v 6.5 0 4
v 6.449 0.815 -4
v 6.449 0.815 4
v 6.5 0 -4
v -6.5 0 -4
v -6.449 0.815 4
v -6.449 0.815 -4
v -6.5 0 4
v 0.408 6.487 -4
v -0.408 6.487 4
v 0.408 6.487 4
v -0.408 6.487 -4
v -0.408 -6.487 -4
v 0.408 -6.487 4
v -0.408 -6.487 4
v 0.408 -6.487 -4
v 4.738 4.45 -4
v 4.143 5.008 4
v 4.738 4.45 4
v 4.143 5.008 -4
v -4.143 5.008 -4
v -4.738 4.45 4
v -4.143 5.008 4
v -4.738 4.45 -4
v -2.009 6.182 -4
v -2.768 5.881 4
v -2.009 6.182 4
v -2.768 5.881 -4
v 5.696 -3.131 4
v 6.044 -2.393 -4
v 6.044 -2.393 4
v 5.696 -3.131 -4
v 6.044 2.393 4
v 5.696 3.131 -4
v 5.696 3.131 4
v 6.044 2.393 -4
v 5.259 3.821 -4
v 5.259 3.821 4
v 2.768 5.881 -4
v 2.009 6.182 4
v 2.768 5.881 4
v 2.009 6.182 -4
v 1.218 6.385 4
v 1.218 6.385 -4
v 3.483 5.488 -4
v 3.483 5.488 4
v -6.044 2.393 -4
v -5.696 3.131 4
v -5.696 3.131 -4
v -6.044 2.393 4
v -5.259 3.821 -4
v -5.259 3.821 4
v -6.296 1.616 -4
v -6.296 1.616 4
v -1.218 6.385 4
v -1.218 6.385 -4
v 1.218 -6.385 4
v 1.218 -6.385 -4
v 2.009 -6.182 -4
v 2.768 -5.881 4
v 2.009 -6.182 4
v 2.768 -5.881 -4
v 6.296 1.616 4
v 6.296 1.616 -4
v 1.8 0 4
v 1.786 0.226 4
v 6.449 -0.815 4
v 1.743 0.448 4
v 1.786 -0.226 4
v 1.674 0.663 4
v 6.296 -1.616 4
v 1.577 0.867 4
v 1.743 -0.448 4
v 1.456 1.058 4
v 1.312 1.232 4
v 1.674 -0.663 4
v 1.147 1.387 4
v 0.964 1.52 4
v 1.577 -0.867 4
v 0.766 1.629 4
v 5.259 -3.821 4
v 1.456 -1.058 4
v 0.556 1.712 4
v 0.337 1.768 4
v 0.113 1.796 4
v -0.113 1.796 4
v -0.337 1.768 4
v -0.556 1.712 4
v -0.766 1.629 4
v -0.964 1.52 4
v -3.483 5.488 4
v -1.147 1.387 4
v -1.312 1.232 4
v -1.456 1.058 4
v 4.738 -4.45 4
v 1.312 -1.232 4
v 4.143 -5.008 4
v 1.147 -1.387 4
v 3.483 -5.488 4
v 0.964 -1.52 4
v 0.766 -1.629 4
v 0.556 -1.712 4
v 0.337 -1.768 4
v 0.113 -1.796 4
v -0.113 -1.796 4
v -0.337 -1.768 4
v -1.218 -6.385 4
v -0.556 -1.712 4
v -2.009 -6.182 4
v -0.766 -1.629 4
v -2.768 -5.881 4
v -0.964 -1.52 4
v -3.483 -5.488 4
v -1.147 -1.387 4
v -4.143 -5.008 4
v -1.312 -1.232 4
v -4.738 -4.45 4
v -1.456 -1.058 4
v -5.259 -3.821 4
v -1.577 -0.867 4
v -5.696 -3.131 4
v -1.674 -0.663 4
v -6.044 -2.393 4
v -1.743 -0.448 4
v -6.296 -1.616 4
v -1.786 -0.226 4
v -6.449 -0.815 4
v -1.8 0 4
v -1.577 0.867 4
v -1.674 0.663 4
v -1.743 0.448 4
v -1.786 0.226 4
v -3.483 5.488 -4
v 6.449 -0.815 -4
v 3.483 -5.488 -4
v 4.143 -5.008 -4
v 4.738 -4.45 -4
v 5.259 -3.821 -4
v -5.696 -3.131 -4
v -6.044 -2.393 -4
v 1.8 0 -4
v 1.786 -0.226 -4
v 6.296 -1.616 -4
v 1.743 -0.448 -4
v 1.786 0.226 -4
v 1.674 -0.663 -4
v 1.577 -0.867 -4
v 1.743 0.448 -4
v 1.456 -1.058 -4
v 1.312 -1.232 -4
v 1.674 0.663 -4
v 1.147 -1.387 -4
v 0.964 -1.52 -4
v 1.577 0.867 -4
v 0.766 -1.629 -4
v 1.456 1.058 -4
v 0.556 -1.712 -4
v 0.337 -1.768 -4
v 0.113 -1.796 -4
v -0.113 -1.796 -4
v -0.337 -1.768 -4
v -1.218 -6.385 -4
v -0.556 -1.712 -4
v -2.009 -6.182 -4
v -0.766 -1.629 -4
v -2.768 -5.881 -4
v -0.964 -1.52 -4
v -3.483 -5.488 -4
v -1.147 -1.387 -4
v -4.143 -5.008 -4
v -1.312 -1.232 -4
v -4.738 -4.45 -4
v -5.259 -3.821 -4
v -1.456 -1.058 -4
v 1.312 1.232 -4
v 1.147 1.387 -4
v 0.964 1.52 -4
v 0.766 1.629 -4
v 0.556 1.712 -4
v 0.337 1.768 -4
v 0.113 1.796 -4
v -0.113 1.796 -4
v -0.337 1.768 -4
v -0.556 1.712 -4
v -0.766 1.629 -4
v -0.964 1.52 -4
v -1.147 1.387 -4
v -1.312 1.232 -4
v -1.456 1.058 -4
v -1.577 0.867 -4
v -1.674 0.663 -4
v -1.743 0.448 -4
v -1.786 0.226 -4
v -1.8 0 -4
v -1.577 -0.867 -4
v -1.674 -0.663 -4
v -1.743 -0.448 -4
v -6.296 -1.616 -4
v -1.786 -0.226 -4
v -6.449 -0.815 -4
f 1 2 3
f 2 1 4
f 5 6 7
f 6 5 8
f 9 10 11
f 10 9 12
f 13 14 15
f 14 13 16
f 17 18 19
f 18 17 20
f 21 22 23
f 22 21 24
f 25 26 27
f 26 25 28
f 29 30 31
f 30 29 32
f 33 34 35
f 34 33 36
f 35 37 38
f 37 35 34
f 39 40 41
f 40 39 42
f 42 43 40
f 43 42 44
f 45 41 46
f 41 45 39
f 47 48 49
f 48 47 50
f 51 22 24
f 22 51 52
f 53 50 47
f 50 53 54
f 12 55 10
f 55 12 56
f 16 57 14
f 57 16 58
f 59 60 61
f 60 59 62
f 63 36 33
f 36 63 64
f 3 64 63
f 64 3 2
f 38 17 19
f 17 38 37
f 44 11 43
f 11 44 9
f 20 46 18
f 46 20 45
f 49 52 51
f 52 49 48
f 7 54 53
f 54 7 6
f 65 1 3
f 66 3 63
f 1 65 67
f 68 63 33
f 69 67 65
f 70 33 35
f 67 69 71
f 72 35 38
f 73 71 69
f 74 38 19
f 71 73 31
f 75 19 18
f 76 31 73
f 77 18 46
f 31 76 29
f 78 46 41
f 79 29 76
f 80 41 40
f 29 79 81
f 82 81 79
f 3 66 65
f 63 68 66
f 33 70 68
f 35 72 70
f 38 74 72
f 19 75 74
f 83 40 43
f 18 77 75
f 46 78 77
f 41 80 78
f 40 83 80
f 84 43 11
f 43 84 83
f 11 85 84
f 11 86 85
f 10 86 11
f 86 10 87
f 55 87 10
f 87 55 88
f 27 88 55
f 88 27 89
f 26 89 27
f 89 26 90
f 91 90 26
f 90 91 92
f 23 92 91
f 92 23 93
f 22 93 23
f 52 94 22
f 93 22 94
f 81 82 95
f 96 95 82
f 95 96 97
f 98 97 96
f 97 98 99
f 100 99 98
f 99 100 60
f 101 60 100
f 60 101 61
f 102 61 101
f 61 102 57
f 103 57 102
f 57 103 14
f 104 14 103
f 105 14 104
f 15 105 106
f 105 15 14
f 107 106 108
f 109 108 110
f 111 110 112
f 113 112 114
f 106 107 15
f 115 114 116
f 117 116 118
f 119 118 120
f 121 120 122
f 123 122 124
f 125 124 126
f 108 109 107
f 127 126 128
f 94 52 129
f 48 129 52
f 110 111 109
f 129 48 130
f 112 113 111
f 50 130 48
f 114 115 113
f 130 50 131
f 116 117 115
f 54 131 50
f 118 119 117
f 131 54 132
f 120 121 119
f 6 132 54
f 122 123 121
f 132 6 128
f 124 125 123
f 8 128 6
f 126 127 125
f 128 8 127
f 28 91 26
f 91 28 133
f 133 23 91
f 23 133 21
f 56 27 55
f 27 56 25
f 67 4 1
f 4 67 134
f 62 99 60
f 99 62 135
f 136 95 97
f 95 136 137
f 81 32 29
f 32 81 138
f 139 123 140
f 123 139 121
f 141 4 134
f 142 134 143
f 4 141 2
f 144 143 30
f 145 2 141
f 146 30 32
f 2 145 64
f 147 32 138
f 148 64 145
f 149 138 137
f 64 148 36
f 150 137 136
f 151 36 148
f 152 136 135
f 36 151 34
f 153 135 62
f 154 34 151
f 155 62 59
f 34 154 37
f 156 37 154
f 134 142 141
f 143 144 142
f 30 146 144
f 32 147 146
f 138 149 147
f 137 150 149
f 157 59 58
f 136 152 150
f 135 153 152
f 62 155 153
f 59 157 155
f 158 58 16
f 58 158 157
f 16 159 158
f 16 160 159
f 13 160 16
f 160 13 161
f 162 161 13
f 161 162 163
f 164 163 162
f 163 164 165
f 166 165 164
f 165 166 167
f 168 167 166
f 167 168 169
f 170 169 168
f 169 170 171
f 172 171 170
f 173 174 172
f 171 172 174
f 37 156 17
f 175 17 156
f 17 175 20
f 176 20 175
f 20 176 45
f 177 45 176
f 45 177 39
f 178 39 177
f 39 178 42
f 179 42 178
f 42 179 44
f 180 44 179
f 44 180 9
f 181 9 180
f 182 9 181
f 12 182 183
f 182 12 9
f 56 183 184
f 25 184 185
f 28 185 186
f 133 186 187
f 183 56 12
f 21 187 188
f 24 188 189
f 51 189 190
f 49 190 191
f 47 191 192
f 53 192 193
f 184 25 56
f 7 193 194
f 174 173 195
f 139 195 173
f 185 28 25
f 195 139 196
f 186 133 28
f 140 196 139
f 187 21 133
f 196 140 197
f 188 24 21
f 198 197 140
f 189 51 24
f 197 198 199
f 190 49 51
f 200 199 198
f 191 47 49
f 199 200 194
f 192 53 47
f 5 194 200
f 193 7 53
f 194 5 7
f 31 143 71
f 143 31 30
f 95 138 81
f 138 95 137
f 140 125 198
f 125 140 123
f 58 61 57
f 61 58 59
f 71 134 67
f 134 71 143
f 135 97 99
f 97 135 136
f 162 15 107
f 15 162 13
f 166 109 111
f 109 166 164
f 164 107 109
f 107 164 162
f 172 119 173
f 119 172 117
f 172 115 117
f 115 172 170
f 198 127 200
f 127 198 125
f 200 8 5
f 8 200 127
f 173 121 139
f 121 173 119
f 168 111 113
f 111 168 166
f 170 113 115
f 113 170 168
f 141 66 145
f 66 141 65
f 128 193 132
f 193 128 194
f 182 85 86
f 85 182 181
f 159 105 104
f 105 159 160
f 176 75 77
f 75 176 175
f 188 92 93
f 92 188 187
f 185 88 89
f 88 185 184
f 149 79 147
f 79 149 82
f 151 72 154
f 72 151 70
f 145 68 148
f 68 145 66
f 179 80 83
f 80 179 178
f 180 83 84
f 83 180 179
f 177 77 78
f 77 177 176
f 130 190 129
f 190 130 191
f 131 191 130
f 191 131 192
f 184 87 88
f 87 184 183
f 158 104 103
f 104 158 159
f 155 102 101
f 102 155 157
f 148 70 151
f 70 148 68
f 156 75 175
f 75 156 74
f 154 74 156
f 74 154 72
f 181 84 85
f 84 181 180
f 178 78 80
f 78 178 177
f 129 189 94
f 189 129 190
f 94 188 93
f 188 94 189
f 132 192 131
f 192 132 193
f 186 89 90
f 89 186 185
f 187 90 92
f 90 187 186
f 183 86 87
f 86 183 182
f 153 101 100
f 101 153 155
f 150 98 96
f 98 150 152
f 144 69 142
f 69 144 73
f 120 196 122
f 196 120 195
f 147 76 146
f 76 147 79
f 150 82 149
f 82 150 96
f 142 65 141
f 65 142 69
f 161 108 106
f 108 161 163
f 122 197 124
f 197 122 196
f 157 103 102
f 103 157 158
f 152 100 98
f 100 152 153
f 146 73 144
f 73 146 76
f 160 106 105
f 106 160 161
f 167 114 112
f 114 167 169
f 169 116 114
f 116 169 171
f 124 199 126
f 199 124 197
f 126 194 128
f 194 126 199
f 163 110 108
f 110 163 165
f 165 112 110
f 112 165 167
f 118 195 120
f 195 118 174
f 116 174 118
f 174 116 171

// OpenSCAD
$fn = 50;


difference() {
	union() {
		translate(v = [0, 0, -4.0000000000]) {
			cylinder(h = 8, r = 6.5000000000);
		}
	}
	union() {
		translate(v = [0, 0, -100.0000000000]) {
			cylinder(h = 200, r = 1.8000000000);
		}
	}
}
